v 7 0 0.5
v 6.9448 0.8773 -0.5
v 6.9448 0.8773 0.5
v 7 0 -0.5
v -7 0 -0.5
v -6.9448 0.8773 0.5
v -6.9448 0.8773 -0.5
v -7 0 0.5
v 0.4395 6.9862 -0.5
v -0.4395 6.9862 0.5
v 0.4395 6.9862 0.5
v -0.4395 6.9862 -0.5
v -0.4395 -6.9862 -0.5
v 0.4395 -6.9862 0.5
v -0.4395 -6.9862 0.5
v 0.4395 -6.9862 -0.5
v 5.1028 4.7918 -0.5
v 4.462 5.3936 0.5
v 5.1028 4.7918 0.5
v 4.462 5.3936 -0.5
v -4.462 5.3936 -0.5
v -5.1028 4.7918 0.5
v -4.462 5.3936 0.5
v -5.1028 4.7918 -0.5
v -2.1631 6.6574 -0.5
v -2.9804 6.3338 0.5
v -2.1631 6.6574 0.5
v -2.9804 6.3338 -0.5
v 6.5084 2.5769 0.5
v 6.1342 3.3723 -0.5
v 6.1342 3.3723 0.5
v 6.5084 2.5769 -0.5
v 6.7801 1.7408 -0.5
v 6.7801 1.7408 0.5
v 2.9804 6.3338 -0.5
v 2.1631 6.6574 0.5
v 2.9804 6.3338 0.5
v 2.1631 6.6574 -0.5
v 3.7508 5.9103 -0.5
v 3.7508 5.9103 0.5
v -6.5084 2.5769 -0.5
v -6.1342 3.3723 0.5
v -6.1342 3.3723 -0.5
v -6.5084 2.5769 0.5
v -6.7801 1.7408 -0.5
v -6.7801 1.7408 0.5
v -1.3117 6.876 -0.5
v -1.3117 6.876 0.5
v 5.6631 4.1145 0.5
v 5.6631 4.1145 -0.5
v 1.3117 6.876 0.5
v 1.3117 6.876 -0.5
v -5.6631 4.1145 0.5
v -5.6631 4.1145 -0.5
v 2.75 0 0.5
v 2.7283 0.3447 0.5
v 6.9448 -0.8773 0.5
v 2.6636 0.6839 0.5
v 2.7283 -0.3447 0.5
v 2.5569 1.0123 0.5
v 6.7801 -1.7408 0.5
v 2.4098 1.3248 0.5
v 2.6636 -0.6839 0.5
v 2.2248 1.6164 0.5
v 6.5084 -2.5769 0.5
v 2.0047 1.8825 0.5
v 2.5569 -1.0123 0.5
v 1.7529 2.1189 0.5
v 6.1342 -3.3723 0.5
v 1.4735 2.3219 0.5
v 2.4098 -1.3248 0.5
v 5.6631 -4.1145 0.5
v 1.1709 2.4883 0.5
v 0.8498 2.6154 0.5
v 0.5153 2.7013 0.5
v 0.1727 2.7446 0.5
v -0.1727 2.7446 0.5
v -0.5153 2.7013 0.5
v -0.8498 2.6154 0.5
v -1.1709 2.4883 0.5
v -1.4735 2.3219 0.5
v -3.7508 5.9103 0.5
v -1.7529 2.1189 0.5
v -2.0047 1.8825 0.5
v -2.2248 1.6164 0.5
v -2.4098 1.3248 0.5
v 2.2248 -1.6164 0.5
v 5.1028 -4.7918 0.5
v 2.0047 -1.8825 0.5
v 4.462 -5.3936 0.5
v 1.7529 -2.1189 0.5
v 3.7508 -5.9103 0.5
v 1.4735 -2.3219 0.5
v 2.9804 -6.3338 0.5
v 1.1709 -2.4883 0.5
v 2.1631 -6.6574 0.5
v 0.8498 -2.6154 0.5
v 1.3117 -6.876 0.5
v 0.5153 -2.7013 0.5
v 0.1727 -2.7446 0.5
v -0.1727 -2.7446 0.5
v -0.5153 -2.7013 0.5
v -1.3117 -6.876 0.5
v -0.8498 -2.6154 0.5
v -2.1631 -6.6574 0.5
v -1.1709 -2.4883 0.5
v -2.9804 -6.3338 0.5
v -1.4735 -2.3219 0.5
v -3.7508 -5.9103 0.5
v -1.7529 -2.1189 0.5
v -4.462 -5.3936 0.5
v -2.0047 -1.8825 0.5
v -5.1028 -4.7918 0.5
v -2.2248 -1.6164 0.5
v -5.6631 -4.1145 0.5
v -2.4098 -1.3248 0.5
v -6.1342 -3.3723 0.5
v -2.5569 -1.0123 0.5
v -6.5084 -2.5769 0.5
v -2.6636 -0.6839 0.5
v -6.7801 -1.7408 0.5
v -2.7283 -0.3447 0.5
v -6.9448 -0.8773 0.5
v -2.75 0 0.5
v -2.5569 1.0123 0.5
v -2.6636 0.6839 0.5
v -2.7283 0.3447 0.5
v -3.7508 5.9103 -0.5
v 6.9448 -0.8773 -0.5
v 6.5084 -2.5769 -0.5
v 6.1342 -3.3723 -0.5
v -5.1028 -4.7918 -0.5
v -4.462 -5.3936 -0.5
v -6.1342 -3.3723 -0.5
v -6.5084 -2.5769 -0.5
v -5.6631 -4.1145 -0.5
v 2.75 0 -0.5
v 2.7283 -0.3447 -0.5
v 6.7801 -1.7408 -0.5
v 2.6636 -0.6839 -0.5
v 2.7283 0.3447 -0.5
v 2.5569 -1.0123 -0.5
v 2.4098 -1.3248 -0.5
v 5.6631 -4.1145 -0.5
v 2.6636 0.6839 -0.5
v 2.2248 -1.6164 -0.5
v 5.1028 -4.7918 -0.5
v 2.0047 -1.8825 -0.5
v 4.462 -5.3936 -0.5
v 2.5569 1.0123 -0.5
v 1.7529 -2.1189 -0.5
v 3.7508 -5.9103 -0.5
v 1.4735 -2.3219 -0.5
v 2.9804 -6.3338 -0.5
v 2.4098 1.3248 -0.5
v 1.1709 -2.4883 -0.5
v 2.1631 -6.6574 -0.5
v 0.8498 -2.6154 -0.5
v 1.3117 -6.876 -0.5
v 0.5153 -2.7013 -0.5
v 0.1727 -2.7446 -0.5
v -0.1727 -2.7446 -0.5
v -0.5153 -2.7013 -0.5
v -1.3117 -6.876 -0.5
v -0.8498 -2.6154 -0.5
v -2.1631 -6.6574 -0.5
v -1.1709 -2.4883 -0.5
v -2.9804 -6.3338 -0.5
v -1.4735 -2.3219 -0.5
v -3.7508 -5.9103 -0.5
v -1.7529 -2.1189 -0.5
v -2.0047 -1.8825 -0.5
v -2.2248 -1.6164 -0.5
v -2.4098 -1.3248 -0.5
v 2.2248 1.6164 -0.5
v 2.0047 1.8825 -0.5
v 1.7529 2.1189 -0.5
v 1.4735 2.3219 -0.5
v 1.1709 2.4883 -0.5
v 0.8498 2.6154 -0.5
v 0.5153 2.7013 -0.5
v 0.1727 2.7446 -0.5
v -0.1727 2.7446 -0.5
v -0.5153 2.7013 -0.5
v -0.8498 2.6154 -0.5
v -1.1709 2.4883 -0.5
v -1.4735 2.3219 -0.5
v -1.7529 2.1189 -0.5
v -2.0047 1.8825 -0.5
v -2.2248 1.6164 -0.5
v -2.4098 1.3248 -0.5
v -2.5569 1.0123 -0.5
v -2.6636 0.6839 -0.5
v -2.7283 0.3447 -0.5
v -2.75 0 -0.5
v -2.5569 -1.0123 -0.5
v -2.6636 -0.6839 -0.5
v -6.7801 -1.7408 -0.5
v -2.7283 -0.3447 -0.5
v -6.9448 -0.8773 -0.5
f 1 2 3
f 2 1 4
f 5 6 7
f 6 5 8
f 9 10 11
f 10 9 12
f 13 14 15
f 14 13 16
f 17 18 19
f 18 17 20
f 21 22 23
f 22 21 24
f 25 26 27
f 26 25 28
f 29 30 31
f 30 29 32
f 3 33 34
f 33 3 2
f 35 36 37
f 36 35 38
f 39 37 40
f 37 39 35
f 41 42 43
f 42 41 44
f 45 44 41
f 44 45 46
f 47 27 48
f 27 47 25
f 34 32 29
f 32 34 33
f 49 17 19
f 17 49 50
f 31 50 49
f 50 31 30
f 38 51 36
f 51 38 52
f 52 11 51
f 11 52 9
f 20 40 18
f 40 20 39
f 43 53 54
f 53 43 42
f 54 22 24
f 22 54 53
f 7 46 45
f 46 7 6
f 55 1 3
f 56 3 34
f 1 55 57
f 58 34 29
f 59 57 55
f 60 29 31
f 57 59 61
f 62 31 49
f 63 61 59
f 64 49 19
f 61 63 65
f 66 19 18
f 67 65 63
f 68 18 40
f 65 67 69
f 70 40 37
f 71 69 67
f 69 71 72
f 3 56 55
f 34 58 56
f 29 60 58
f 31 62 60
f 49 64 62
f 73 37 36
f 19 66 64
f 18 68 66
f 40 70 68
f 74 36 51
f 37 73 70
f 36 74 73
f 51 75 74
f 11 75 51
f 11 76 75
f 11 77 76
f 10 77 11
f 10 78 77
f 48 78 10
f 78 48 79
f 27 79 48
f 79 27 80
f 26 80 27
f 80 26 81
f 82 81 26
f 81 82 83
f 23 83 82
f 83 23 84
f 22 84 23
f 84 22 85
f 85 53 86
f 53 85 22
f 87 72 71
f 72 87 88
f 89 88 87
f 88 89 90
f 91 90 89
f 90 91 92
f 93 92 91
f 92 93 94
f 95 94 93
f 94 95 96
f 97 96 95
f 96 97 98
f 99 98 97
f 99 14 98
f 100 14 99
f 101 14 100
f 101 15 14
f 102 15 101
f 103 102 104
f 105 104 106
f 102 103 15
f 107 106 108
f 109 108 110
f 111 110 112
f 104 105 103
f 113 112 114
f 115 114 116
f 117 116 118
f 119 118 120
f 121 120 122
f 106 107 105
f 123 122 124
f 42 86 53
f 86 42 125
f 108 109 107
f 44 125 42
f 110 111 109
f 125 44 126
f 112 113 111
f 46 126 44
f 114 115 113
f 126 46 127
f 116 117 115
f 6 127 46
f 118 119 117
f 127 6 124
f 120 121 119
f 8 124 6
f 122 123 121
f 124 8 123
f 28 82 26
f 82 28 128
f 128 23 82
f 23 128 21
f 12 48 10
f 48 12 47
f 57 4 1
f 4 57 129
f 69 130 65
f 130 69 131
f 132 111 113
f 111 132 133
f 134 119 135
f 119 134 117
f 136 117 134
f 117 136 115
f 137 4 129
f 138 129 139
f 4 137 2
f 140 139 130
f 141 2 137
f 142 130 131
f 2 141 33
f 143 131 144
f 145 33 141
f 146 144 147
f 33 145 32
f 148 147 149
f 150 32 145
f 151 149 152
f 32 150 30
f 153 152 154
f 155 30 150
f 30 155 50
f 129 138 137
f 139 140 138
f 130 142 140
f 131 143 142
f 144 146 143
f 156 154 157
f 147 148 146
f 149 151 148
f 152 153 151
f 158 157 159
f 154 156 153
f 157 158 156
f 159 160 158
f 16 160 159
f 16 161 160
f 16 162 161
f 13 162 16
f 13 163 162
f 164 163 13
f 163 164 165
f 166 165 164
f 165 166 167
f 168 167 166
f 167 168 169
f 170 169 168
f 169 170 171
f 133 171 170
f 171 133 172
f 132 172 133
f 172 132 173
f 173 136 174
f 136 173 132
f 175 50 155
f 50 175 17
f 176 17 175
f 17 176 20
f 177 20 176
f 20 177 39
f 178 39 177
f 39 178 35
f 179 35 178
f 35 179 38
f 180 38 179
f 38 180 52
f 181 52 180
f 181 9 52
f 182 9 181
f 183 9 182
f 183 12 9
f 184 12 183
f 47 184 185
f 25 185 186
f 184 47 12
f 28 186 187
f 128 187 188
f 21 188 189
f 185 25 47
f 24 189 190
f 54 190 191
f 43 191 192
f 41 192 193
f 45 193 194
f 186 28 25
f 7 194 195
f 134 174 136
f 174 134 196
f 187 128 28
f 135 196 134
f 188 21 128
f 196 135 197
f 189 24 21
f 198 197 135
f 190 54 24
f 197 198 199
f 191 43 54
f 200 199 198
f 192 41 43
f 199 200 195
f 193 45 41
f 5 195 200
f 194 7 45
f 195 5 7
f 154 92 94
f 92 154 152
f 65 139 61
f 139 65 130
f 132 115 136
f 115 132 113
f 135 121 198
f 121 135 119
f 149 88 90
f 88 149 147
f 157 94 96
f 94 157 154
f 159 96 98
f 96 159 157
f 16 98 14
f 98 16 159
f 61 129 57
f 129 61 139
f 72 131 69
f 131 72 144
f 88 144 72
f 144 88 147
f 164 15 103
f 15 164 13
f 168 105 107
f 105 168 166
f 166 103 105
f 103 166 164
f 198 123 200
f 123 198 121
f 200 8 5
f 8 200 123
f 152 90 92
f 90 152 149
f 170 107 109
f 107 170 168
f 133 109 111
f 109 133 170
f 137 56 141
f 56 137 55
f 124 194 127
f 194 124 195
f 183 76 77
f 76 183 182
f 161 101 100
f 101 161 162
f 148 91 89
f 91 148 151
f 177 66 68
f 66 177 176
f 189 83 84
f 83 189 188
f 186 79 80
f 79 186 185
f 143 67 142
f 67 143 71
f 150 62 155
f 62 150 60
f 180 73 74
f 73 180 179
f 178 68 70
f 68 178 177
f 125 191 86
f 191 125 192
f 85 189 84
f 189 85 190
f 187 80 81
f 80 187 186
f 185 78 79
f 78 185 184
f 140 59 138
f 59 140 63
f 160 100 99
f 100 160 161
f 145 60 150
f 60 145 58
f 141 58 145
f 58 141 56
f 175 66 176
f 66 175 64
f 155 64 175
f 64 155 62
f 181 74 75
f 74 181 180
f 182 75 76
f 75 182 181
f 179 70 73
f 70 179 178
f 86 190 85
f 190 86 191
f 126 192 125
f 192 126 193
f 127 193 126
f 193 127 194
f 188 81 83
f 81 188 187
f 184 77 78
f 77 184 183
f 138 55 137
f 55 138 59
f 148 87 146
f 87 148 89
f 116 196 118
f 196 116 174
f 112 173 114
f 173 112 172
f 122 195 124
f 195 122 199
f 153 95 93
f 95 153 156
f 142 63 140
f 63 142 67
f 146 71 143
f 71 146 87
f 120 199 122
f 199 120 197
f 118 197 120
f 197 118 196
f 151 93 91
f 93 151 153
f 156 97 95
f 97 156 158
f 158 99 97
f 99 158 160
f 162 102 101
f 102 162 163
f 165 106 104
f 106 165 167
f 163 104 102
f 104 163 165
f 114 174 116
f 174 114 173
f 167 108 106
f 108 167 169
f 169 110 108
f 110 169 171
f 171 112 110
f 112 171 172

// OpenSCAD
$fn = 50;


difference() {
	union() {
		translate(v = [0, 0, -0.5000000000]) {
			cylinder(h = 1, r = 7.0000000000);
		}
	}
	union() {
		translate(v = [0, 0, -100.0000000000]) {
			cylinder(h = 200, r = 2.7500000000);
		}
	}
}
